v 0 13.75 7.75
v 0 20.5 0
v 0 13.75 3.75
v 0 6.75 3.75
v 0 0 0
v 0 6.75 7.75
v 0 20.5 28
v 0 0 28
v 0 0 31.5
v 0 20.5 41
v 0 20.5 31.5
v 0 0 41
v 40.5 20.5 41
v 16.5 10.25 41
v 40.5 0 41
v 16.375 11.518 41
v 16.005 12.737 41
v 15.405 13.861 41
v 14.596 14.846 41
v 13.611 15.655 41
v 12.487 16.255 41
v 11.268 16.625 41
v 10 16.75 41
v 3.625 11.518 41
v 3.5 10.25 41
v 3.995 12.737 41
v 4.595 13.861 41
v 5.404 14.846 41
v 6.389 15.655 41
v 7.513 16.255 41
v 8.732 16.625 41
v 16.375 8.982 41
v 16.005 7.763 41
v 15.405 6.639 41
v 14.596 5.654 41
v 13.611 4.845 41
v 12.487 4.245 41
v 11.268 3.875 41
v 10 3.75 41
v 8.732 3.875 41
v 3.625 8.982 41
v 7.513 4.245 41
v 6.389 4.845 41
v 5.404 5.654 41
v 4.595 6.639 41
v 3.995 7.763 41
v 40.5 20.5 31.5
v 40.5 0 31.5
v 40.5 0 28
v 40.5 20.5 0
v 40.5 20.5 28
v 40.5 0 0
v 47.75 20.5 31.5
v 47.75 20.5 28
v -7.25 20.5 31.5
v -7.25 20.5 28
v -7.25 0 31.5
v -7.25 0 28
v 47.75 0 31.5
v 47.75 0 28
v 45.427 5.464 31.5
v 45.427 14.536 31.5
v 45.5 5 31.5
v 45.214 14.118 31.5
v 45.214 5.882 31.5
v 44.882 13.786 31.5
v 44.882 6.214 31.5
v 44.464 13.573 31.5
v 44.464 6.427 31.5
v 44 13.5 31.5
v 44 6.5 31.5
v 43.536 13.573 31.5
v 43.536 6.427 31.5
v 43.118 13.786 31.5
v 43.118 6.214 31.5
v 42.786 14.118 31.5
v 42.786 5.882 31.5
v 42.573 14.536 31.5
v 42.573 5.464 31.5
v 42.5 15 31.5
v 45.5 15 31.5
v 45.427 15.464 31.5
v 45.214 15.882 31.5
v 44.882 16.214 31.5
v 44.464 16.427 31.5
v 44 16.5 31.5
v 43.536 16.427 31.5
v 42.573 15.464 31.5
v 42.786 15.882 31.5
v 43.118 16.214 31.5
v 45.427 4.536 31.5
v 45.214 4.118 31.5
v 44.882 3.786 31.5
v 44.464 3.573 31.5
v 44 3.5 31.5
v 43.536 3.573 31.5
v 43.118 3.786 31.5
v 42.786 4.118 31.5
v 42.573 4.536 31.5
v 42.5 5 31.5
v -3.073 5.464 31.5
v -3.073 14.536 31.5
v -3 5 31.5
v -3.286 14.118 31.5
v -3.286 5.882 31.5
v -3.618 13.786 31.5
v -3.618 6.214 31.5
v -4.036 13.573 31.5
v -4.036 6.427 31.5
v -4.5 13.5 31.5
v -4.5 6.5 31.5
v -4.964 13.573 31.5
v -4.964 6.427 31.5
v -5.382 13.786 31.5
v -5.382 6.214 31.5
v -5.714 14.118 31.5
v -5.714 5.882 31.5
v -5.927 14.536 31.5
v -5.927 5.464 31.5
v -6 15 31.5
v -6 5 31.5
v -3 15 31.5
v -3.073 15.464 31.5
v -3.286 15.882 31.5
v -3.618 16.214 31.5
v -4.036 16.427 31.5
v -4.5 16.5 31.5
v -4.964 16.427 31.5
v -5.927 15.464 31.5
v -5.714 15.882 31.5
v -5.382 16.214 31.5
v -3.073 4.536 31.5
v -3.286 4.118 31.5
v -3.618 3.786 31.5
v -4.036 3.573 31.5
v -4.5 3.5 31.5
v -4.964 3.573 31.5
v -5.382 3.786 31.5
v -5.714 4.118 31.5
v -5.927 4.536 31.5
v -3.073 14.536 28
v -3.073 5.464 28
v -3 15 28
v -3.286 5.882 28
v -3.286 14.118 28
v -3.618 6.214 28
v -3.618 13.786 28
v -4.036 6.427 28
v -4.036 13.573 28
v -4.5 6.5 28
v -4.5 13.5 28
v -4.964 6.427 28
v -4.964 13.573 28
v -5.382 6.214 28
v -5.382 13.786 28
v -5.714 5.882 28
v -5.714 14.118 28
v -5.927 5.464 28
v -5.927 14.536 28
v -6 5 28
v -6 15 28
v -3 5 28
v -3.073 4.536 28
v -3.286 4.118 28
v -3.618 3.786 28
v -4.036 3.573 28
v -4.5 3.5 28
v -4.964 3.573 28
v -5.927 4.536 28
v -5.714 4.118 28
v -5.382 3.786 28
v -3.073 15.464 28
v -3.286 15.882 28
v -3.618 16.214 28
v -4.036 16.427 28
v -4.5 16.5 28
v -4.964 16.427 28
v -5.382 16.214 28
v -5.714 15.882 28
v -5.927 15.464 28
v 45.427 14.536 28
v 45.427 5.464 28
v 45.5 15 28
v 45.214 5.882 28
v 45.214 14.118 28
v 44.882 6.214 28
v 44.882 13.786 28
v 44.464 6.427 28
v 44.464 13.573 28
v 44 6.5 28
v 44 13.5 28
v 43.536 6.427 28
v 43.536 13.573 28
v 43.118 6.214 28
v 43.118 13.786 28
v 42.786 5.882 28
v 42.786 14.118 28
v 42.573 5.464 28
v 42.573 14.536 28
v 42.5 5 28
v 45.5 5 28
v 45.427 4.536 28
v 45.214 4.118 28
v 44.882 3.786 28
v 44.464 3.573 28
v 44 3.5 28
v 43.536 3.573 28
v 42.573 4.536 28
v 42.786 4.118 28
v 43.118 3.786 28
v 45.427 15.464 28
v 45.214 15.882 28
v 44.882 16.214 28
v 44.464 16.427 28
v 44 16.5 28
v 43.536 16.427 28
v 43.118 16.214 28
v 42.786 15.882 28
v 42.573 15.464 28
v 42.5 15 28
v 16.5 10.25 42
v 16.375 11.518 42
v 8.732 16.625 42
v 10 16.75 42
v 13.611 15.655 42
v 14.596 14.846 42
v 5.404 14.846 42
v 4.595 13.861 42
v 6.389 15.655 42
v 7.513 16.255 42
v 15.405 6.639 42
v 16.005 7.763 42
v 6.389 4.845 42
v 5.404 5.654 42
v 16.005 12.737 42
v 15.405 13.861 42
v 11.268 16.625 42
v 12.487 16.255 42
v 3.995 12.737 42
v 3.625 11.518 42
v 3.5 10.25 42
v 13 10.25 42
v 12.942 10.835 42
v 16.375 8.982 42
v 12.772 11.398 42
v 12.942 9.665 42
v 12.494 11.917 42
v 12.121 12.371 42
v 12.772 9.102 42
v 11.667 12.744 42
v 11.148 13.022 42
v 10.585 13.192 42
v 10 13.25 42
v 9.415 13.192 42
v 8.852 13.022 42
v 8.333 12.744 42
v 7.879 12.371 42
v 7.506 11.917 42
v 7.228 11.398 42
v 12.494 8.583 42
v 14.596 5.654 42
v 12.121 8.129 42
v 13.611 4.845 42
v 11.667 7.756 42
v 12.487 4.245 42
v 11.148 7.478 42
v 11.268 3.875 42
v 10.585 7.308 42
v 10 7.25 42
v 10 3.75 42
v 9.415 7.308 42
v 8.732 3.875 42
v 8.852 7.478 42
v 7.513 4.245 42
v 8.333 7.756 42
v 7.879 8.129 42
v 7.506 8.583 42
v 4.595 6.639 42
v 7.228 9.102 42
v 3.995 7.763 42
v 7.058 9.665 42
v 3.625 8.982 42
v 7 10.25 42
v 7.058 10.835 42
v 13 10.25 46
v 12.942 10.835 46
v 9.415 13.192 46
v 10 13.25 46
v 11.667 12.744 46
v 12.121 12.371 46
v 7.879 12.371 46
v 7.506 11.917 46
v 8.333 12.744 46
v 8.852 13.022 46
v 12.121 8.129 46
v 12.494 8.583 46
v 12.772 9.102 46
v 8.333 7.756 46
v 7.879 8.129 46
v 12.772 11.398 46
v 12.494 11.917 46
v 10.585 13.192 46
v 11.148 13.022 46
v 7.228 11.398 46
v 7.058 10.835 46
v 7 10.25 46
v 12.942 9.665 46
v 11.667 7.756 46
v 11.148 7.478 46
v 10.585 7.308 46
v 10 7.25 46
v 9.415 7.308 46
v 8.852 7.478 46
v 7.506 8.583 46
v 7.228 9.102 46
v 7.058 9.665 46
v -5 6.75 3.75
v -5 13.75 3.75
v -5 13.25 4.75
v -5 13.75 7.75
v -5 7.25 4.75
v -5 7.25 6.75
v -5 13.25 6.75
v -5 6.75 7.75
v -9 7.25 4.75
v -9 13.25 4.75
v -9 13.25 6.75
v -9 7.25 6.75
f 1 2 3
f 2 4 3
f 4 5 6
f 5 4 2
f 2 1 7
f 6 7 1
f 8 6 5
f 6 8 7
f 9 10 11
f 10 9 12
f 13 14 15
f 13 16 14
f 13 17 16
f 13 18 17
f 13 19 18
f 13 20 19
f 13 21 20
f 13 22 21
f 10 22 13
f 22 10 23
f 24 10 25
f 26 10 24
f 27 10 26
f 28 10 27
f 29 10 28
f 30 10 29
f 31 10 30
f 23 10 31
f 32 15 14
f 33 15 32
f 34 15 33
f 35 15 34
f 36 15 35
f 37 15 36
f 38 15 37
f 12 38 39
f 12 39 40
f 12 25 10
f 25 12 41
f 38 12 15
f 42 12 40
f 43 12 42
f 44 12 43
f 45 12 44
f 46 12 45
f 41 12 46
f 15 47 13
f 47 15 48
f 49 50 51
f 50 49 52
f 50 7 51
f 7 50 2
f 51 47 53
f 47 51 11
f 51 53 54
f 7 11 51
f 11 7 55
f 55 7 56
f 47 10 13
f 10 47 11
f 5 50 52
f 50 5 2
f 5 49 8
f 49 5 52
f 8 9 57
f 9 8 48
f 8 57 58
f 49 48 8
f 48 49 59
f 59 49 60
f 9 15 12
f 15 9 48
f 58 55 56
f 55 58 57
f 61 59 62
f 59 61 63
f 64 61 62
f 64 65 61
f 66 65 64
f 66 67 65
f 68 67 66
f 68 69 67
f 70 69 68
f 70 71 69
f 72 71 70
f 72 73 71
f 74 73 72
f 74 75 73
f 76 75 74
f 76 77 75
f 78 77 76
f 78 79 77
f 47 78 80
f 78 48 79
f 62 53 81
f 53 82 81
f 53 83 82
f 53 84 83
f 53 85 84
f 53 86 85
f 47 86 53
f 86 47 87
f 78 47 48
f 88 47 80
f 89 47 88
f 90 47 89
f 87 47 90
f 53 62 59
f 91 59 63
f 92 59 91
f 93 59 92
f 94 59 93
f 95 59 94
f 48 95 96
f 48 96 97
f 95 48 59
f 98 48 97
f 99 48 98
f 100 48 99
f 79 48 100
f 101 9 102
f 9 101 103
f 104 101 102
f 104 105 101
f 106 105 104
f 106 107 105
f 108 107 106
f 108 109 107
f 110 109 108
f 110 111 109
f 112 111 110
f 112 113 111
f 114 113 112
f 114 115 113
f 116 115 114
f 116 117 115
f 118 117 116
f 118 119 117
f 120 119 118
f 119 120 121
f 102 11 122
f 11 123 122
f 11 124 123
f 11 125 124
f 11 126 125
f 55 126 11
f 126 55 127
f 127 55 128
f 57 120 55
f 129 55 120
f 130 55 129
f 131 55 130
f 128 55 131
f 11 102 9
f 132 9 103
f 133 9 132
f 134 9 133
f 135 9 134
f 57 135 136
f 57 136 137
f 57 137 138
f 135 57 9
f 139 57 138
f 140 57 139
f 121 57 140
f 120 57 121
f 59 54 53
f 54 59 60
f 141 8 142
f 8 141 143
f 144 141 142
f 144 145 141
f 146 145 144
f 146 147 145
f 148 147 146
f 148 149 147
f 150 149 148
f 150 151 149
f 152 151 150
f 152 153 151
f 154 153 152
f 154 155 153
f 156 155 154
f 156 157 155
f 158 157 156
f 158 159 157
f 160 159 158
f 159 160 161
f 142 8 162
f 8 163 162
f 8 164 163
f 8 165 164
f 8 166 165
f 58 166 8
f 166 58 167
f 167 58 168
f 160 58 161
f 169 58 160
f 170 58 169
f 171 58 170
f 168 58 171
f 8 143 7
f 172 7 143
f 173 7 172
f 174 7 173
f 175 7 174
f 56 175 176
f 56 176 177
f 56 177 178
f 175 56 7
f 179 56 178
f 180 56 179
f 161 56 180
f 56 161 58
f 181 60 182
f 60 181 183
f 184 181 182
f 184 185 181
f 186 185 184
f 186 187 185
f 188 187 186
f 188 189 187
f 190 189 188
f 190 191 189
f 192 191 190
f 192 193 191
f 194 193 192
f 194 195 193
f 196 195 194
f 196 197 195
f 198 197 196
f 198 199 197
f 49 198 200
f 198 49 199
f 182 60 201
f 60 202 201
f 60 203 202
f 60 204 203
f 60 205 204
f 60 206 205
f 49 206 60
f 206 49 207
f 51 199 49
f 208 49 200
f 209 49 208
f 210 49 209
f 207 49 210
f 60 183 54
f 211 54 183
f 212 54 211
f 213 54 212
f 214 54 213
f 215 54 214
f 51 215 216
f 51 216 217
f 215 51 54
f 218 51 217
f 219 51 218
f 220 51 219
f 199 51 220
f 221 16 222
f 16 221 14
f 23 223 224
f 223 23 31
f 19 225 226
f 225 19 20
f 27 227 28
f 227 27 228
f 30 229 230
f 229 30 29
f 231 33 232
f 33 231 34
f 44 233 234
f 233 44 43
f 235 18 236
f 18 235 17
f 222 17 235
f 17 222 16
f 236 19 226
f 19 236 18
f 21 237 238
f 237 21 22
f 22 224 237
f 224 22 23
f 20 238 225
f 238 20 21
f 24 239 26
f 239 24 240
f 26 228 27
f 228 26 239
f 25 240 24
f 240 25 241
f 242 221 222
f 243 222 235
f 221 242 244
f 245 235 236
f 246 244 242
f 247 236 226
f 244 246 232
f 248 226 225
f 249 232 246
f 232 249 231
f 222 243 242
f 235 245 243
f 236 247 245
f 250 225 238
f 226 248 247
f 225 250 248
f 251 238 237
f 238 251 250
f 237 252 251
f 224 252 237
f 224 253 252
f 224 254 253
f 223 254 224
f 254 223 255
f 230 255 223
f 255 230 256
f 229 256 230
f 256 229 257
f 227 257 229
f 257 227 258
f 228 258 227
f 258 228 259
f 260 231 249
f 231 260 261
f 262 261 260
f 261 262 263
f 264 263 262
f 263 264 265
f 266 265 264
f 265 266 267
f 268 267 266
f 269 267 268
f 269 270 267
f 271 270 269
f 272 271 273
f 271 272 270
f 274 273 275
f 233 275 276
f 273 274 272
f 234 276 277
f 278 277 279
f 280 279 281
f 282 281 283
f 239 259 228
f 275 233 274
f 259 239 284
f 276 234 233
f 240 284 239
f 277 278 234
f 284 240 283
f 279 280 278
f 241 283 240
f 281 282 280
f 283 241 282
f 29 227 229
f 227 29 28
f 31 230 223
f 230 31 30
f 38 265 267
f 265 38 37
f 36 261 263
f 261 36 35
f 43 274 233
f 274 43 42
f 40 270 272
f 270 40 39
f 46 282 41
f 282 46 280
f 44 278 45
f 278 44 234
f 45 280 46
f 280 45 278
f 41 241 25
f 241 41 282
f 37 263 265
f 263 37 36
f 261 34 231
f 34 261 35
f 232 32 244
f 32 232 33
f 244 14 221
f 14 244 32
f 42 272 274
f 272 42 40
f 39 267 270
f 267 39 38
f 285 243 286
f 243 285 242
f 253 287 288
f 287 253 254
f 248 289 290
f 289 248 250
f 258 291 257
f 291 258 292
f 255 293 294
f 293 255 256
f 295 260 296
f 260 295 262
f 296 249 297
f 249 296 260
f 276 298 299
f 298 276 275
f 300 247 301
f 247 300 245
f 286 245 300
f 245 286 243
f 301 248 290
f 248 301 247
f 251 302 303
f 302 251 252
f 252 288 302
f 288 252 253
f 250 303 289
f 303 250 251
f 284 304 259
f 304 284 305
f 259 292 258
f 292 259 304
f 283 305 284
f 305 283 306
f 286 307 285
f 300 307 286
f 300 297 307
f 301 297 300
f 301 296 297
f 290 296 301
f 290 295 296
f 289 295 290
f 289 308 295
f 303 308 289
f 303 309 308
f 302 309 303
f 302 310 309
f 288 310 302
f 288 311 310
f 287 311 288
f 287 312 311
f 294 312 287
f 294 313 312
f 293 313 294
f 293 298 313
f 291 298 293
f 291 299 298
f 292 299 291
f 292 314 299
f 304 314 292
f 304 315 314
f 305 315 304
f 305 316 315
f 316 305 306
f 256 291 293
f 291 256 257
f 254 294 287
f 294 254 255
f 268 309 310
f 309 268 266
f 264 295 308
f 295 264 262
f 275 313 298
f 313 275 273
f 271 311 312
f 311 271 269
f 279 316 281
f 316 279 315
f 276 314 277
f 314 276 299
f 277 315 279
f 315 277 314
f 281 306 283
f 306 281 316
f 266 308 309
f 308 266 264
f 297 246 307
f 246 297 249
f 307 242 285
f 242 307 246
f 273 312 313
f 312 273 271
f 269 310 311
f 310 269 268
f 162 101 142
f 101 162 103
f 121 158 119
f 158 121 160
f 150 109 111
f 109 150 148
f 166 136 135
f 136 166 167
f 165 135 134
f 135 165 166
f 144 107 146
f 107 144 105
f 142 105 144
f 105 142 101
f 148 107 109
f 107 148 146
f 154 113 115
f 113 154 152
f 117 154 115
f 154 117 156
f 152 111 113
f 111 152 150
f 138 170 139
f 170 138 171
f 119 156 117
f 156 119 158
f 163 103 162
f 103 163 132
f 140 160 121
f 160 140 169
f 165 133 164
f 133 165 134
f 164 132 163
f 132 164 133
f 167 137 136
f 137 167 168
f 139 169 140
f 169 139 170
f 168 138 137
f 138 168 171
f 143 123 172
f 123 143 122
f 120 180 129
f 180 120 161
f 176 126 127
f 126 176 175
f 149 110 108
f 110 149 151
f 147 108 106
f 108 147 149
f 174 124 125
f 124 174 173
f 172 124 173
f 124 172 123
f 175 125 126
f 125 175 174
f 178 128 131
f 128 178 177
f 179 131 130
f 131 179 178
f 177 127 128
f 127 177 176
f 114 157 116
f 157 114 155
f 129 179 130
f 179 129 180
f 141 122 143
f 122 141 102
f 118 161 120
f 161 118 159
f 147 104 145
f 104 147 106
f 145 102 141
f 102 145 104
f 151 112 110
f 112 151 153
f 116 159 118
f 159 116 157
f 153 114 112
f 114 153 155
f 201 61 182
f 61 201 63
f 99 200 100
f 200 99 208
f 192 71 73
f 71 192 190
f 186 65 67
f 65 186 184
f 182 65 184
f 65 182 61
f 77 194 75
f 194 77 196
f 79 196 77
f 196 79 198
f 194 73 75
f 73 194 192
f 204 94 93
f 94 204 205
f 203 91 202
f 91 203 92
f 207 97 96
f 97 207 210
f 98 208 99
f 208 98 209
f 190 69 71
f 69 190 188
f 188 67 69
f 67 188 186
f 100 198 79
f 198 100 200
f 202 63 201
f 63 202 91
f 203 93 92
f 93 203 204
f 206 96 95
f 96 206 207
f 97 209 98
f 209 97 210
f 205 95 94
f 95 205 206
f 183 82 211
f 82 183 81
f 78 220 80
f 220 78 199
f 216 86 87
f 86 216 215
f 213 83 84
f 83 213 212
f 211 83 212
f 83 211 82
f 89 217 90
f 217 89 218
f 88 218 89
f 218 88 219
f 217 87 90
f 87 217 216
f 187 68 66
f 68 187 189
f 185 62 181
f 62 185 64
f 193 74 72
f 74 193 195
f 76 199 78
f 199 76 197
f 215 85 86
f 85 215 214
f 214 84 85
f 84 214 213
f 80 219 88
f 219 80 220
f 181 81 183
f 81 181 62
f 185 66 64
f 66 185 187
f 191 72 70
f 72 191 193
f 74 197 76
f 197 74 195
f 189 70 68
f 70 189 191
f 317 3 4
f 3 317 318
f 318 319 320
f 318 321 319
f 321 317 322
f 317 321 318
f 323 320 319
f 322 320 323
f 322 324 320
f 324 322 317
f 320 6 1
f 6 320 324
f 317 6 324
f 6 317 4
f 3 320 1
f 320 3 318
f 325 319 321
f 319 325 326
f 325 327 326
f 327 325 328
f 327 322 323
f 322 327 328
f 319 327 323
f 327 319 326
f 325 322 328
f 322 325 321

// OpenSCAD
// DS3218MG Servo Motor OpenSCAD Model
// All dimensions in mm

// Main body dimensions
body_length = 40.5;
body_width = 20.5;
body_height = 41;
body_bump_height = 42;

// Mounting ears dimensions
mount_ears_length = 55;
mount_ears_width = 10;
mount_ears_height = 3.5;
mount_holes_distance = 49.5;
mount_ears_offset_height = 28;
mount_ears_offset_width = (mount_ears_length - body_length) / 2;

// Output shaft housing dimensions
shaft_dia = 6;
shaft_height = 4;
shaft_housing_height = 1;
shaft_housing_dia = 13;
shaft_offset = 10;

// Wire
wire_length = 4;
wire_width = 7;
wire_height = 5;

module servo_body() {
    difference() {
        union() {
            // Main body
            color("pink")
            cube([body_length, body_width, body_height]);
            
            // Mounting ears
            color("blue")
            translate([-mount_ears_offset_width, 0, mount_ears_offset_height])
            cube([mount_ears_length, body_width, mount_ears_height]);
            
            // Output shaft housing
            color("purple")
            translate([10, body_width/2, body_height])
            cylinder(h=shaft_housing_height, d=shaft_housing_dia, $fn=32);
            
            // Output shaft
            color("green")
            translate([10, body_width/2, body_height+shaft_housing_height])
            cylinder(h=shaft_height, d=shaft_dia, $fn=32);
        }
        
        // Mounting holes
        // Left hole
        translate([-4.5, 5, mount_ears_offset_height-1])
        cylinder(h=mount_ears_height+2, d=3, $fn=20);
        translate([-4.5, 5+mount_ears_width, mount_ears_offset_height-1])
        cylinder(h=mount_ears_height+2, d=3, $fn=20);
        
        // Right hole
        translate([44, 5, mount_ears_offset_height-1])
        cylinder(h=mount_ears_height+2, d=3, $fn=20);
        translate([44, 5+mount_ears_width, mount_ears_offset_height-1])
        cylinder(h=mount_ears_height+2, d=3, $fn=20);
    }
    
    // Wire exit
    color("grey")
    translate([0, body_width/2-wire_width/2, 3.75])
    rotate([0, -90, 0])
    cube([wire_length, wire_width, wire_height]);
    translate([-wire_length, body_width/2-wire_width/2+0.5, 3.75+wire_height/5])
    rotate([0, -90, 0])
    cube([wire_length-2, wire_width-1, wire_height]);
}

// Render the servo
servo_body();
